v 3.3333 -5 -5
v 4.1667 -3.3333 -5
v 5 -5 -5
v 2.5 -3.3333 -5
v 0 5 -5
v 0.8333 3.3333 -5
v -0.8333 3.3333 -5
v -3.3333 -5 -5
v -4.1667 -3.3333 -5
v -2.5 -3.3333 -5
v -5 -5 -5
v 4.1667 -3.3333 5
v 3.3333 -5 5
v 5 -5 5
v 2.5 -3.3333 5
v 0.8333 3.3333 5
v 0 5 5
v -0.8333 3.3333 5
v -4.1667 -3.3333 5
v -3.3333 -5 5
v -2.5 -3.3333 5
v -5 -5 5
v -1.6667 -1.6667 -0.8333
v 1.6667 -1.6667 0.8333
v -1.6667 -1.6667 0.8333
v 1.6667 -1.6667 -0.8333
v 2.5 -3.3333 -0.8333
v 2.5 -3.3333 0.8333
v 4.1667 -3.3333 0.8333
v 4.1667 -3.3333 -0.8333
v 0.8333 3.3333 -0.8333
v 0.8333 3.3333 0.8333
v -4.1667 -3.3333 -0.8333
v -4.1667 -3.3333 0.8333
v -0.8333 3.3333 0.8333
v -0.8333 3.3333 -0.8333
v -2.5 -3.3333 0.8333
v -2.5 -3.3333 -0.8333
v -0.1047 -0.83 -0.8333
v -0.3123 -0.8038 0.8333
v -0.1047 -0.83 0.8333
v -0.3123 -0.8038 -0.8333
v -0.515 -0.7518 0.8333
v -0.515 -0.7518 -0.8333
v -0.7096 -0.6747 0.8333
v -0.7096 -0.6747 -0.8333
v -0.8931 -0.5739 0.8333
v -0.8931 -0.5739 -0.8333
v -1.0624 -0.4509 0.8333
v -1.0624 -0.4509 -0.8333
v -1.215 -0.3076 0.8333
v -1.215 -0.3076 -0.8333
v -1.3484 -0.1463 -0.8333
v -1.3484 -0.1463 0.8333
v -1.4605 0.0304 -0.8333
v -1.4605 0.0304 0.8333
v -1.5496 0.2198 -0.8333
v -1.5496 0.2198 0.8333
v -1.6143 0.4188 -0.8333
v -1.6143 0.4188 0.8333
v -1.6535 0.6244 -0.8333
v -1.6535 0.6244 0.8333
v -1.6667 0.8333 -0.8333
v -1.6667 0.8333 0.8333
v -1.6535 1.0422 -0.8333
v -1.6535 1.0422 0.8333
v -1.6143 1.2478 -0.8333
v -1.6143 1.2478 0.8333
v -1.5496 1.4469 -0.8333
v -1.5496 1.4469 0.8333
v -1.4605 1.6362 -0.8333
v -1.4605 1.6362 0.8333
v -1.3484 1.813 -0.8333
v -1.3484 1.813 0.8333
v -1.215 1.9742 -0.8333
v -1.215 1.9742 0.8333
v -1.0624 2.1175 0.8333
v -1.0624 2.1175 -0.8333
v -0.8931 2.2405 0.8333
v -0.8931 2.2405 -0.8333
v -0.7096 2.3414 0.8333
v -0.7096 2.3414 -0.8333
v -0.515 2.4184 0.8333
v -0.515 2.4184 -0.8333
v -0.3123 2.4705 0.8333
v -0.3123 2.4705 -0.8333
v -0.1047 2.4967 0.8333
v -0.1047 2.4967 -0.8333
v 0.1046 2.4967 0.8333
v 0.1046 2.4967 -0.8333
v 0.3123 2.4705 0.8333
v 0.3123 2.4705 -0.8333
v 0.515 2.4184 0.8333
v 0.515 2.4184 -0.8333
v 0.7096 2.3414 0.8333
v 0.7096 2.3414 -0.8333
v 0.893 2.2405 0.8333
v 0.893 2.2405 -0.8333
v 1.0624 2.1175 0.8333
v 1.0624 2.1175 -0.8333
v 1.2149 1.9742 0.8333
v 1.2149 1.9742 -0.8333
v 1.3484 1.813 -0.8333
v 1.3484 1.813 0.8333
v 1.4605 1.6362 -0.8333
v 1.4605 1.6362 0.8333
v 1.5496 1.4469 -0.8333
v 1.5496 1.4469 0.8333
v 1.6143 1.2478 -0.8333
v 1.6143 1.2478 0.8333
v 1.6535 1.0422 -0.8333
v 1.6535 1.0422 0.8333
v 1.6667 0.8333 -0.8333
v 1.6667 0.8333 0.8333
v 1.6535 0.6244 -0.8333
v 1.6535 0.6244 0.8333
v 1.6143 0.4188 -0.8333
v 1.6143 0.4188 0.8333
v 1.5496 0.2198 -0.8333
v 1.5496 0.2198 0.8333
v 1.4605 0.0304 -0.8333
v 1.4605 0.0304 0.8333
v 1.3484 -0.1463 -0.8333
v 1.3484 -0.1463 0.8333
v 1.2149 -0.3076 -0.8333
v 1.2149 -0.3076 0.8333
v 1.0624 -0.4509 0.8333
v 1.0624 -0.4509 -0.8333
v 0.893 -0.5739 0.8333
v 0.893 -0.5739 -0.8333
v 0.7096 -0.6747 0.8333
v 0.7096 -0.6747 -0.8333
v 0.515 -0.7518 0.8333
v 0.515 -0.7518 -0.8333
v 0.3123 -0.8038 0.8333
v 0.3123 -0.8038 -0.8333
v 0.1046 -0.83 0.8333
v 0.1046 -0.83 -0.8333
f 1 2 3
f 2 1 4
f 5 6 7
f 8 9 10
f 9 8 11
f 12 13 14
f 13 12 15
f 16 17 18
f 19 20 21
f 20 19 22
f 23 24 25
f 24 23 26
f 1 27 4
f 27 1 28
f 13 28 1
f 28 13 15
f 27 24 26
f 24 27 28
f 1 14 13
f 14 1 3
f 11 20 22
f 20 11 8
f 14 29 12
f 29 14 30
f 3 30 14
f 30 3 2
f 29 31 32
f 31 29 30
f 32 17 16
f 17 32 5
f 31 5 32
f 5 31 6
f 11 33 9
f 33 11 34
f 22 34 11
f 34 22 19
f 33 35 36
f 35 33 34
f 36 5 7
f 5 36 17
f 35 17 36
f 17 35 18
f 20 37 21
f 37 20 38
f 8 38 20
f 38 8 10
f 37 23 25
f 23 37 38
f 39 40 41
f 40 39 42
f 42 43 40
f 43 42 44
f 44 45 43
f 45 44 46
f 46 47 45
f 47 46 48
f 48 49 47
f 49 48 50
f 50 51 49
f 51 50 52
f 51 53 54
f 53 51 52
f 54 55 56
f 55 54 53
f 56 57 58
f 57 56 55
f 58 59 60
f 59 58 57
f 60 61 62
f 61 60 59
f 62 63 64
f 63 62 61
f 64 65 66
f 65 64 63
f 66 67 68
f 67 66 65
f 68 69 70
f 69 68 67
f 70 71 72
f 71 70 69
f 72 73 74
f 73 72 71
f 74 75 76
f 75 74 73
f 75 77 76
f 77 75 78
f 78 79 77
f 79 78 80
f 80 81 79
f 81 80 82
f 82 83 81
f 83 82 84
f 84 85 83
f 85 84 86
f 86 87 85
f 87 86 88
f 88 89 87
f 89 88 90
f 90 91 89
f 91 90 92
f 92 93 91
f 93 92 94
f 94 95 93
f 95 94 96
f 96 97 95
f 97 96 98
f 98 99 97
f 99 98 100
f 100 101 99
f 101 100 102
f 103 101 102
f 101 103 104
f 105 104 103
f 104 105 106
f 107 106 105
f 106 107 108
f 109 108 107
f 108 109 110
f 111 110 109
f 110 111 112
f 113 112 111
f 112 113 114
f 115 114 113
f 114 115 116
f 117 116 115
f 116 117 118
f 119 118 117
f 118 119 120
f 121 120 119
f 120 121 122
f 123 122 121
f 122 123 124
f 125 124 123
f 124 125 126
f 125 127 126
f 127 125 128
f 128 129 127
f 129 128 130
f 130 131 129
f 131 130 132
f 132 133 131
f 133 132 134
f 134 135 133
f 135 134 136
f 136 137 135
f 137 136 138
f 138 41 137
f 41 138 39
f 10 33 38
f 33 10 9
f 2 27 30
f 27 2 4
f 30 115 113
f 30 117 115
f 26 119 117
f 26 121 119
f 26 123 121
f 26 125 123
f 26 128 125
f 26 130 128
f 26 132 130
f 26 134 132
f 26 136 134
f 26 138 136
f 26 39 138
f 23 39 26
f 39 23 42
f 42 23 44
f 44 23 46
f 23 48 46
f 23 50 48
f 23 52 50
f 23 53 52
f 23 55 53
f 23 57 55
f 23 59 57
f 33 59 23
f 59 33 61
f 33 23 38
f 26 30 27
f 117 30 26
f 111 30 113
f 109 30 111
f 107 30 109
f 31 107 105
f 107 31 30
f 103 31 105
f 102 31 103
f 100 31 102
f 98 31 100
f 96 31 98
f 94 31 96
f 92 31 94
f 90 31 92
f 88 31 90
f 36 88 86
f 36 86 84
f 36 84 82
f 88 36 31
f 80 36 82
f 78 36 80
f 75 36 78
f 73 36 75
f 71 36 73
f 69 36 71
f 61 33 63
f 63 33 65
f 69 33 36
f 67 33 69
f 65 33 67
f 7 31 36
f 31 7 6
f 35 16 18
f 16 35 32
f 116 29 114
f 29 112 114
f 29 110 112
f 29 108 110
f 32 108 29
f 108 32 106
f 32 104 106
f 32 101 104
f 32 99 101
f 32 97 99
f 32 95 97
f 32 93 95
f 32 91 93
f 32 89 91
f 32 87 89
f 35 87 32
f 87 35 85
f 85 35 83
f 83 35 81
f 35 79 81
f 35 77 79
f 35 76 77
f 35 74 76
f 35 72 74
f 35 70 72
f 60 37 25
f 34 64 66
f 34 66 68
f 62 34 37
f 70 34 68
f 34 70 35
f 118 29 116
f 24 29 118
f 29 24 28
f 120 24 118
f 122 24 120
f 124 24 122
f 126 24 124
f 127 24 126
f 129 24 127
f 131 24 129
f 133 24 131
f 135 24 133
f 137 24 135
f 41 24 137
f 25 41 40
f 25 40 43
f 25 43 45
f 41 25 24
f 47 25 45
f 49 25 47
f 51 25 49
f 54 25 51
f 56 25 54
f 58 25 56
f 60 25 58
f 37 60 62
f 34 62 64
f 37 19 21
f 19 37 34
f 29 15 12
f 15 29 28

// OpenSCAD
// Generated by SolidPython 1.1.3 on 2025-02-25 01:33:37
$fn=50;


intersection() {
	translate(v = [-5.0000000000, -5.0000000000, -5.0000000000]) {
		linear_extrude(height = 10) {
			difference() {
				polygon(points = [[0, 0], [5.0000000000, 10], [10, 0], [8.3333333333, 0], [6.6666666667, 3.3333333333], [3.3333333333, 3.3333333333], [1.6666666667, 0]]);
				translate(v = [5.0000000000, 5.8333333333]) {
					circle(r = 1.6666666667);
				}
			}
		}
	}
	rotate(a = 90, v = [0, 1, 0]) {
		translate(v = [-5.0000000000, -5.0000000000, -5.0000000000]) {
			linear_extrude(height = 10) {
				polygon(points = [[0, 0], [10, 0], [10, 1.6666666667], [5.8333333333, 1.6666666667], [5.8333333333, 8.3333333333], [10, 8.3333333333], [10, 10], [0, 10], [0, 8.3333333333], [4.1666666667, 8.3333333333], [4.1666666667, 1.6666666667], [0, 1.6666666667]]);
			}
		}
	}
}
/***********************************************
*********      SolidPython code:      **********
************************************************
 
from solid import *
from solid.utils import *

import math
import matplotlib.pyplot as plt
import subprocess
import os
import grok_letters as grok
import grok_think as grok_think
import letters as let
import o1_letters as o1

def arc_points(radius, start_angle, end_angle, center=[0,0], num_points=50):
    angles = [start_angle + i * (end_angle - start_angle) / (num_points - 1)
              for i in range(num_points)]
    points = [
        (center[0] + radius * math.cos(math.radians(angle)),
         center[1] + radius * math.sin(math.radians(angle)))
        for angle in angles
    ]
    return points

class Hole:
    def __init__(self, radius, x, y):
        """
        Hole defined by:
        :param x: x dimension for center point of the circle as a ratio of letter height
        :param y: y dimension for center point of the circle as a ratio of letter height
        :param radius: radius of circle as a ratio of letter height
        """
        self.x = x
        self.y = y
        self.radius = radius

class Letter2D:
    def __init__(self, letter, scale):
        self.letter = letter
        self.scale = scale
        self.shape = self.generate()
    
    def get_letter_points(self):
        points = getattr(let, self.letter)
        # points = getattr(o1, self.letter)
        # points = getattr(grok, self.letter)
        scaled_points = [(point[0] * self.scale, point[1] * self.scale) for point in points]
        return scaled_points

    def get_letter_holes(self):
        holes = []
        if self.letter == "A": 
            holes = [Hole(1/6, 1/2, 7/12)]
        if self.letter == "B":
            holes = [Hole(1/6, 1/2, 3/4), Hole(1/6, 1/2, 1/4)]
        if self.letter == "D":
            holes = [Hole(1/3, 1/2, 1/2)]

        scaled_holes = [Hole(hole.radius*self.scale, hole.x*self.scale, hole.y*self.scale) for hole in holes]
        return scaled_holes

    
    def generate(self):
        shape = polygon(points=self.get_letter_points())
        holes = self.get_letter_holes()

        if holes:
            for hole in holes:
                circle_hole = circle(r=hole.radius)
                positioned_hole = translate([hole.x, hole.y])(circle_hole)
                shape = difference()(shape, positioned_hole)
        return shape
    

    def render(self):
        scad_render_to_file(self.shape, f"output/{self.name}.scad", file_header='$fn=50;')
        subprocess.run(["C:\\Program Files\\OpenSCAD\\openscad.exe", "-o", f"output\\{self.name}.stl", f"output\\{self.name}.scad"])


class TwoLetter3D:
    def __init__(self, height, letterA, letterB=None):
        self.height = height
        self.letterA = letterA
        self.letterB = letterB
    

    def generate_3d_letter(self, letter):
        letter = letter.upper()
        # TODO: add catch here for is letter is not a letter
        shape = Letter2D(letter, self.height).generate()
        shape_3d = linear_extrude(height=self.height)(shape)
        centered_shape_3d = translate([-self.height/2, -self.height/2, -self.height/2])(shape_3d)
        return centered_shape_3d


    def render(self):
        letterA3D = self.generate_3d_letter(self.letterA)

        if self.letterB:
            letterB3D = self.generate_3d_letter(self.letterB)
            letterB3D = rotate(a=90, v=[0,1,0])(letterB3D)

            combined = intersection()(letterA3D, letterB3D)
            file_name = self.letterA + self.letterB
            scad_render_to_file(combined, f"output/{file_name}.scad", file_header='$fn=50;')
            subprocess.run(["C:\\Program Files\\OpenSCAD\\openscad.exe", "-o", f"output\\{file_name}.stl", f"output\\{file_name}.scad"])
            return
        else:
            # file_name = "o1_" + self.letterA
            # file_name = "grok_think_" + self.letterA
            file_name = self.letterA
            # file_name = "grok_" + self.letterA
            scad_render_to_file(letterA3D, f"output/{file_name}.scad", file_header='$fn=50;')
            subprocess.run(["C:\\Program Files\\OpenSCAD\\openscad.exe", "-o", f"output\\{file_name}.stl", f"output\\{file_name}.scad"])
            # subprocess.run(["openscad", "-o", f"output\\{file_name}.png", f"output\\{file_name}.scad", "--imgsize=800,600", "--autocenter"])
            subprocess.run(["openscad", "-o", f"output\\{file_name}.png", f"output\\{file_name}.scad", "--imgsize=800,600", "--camera=0,0,30,0,0,0", "--viewall", "--autocenter", "--projection=o"])
            os.remove(f"output/{file_name}.scad")
            return
                


if __name__ == "__main__":
    os.makedirs("output", exist_ok=True)

    # # Generate a letter
    # letter = input()
    # shape = TwoLetter3D(10, letter)
    # shape.render()
    
    letters = [chr(x) for x in range(ord('A'), ord('j') + 1)]

    # Generate all combos
    for letter in letters:
        for other_letter in letters:
            shape = TwoLetter3D(10, letter, other_letter)
            shape.render()

    # # Generate all letters
    # for letter in letters:
    #     shape = TwoLetter3D(10, letter)
    #     shape.render()
 
 
************************************************/
